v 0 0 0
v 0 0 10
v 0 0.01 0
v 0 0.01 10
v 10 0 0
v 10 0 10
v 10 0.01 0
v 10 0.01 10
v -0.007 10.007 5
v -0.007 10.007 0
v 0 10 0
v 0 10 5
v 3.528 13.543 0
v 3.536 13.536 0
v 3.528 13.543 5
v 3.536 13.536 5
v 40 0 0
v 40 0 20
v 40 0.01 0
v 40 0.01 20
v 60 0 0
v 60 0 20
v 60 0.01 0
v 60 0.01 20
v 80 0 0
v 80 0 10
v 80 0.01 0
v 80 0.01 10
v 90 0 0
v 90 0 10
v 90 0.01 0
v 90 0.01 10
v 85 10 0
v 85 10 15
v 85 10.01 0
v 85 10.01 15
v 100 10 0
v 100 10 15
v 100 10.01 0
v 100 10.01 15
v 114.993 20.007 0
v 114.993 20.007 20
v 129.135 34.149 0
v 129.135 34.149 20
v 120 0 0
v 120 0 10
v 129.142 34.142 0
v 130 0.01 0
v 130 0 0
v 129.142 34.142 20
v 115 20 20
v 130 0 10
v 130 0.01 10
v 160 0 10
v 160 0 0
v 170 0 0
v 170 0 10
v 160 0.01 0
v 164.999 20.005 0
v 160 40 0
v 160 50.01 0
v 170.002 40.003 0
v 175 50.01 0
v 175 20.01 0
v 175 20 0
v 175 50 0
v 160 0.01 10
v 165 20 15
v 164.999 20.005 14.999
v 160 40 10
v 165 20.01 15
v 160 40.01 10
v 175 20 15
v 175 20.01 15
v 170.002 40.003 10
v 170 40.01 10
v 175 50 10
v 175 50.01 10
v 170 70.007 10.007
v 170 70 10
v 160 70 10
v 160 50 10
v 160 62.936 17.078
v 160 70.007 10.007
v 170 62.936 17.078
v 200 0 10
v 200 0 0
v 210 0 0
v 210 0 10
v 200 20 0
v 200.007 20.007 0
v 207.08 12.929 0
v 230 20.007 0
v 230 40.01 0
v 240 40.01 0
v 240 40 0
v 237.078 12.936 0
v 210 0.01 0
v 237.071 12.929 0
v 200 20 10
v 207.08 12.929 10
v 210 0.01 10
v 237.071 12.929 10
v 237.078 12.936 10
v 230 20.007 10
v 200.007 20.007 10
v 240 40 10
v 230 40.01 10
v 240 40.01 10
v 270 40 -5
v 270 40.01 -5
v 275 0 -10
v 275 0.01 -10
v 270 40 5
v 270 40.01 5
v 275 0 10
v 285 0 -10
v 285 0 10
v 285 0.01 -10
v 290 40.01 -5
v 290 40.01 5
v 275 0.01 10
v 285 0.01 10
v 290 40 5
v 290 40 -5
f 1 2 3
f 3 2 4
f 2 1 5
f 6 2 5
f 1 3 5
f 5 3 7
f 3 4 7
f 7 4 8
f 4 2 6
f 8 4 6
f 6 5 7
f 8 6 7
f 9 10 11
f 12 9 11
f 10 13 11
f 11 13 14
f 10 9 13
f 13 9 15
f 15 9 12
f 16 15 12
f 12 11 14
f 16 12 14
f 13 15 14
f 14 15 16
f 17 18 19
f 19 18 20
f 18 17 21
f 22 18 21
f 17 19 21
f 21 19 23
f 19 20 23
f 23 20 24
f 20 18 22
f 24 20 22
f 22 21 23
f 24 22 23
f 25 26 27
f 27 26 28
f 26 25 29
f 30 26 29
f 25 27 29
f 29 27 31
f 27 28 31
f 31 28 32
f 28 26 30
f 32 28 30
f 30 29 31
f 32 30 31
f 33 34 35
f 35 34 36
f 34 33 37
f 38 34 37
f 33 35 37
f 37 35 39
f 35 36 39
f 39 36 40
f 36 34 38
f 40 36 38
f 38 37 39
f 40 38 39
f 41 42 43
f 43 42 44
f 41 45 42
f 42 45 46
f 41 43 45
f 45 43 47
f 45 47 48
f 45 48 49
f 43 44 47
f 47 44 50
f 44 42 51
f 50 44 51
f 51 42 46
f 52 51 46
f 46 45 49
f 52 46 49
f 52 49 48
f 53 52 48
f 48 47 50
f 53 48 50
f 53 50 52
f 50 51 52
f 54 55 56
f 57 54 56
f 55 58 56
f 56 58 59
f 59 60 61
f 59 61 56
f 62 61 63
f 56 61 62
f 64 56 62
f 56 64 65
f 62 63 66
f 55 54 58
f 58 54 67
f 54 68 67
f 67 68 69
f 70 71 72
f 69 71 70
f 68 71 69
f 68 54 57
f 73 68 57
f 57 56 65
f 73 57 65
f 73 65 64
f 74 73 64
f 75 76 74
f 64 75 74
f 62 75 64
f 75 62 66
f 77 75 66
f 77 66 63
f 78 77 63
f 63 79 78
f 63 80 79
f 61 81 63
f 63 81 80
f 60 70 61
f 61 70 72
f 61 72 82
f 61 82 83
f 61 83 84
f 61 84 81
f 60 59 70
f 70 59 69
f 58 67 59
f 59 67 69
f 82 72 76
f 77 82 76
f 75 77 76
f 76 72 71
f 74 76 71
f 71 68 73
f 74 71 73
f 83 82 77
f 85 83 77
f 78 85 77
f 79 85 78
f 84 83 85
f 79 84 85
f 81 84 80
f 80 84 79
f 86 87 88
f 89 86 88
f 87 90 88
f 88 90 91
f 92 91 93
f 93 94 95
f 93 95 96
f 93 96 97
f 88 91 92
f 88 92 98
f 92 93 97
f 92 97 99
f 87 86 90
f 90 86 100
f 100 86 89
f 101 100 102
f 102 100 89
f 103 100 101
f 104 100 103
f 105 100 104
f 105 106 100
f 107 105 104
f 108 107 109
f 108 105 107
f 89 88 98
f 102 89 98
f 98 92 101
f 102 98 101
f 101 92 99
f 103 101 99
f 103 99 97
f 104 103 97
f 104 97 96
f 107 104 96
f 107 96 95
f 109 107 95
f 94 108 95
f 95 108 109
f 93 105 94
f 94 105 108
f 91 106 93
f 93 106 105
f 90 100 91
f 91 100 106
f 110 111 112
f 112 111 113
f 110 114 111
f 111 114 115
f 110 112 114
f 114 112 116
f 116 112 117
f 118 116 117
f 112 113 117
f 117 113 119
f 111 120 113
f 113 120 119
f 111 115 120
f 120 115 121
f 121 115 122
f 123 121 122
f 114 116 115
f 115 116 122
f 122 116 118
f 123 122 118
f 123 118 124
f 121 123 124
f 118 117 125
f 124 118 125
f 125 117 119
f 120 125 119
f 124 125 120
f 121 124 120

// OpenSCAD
// file: beams.scad
/* 
 * openscad beams library
 * create complex openscads objects from frames which are defining beams
 * (constructed like a ship body or airplane hull)
 *
 * https://github.com/Stemer114/openscad_beams
 * http://www.thingiverse.com/Stemer114/designs
 * 
 *    Copyright (C) 2016 Stemer114 (stemer114@merunka.de)
 *
 *    This program is free software: you can redistribute it and/or modify
 *    it under the terms of the GNU General Public License as published by
 *    the Free Software Foundation, either version 3 of the License, or
 *    (at your option) any later version.
 *
 *    This program is distributed in the hope that it will be useful,
 *    but WITHOUT ANY WARRANTY; without even the implied warranty of
 *    MERCHANTABILITY or FITNESS FOR A PARTICULAR PURPOSE.  See the
 *    GNU General Public License for more details.
 *
 *    You should have received a copy of the GNU General Public License
 *    along with this program.  If not, see <http://www.gnu.org/licenses/>.
 *

 * Credits: 
 *          for some of the examples
 *          MCAD Library - Polyholes Copyright 2011 Nophead (of RepRap fame)
 *          It is licensed under the terms of Creative Commons Attribution 3.0 Unported.
 *          https://github.com/SolidCode/MCAD/blob/master/polyholes.scad
 *
 *          BeamsVersion, libEcho and code structure inspired by 
 *          OpenSCAD Parts Library by randyy is licensed under the GNU - LGPL license. 
 *          http://www.thingiverse.com/thing:6021
 *
 */

//**** house keeping
//we define these as functions to avoid assignment problems from caller modules
function BeamsVersion() = 1.0;  //library version
function ep()=0.01;  //epsilon environment to avoid non-manifold objects


//**** module definitions

// a single rectangular frame, usually very thin
// params: w - width of frame (x direction)
//         h - height of frame (z direction)
//         d - thickness of frame (y direction, usually very thin, e.g. 0.1mm)
//         o - offset vector from origin (probably best to use x and y offsets only here for starters)
//         r - rotation vector (probably best to use only z rotation here for starters)
//         vec - vector interface, used instead of the named params
//         the vector must use the following structure (example)
//           w  h  rotation    offset        thickness
//          [3, 4, [0, 0, 90], [0, -1.5, 0], ep ],   //start (front center)
//         there is no checking other than length checking to branch in the interface
//         so better make sure the vector conforms
//         the vector interface allows you to define a list of vectors in your source file
//         and supply them all at once to the beam module (see below)
//         this probably makes more sense if you look at some of the example files
module frame(
        w = 10,  //width
        h = 10,  //height
        r = [0, 0, 0],  //rotation vector
        o = [0, 0, 0],   //offset vector
        d = ep(),  //thickness (normally very thin)
        vec = [],  //vector, default none
        )
{
    if ( len(vec)==5 ) {
        //use vector interface
        translate( vec[3] )
            rotate( vec[2] )
            cube([ vec[0], vec[4], vec[1] ]);
    } else {
        //use single param interface
        translate(o)
            rotate(r)
            cube([w, d, h]);
    }  //end else
}  //end module

// a single beam consisting of two frames at either end, connected by a hull
// to disable hull, use no_hull=true (for debugging)
// beam uses the vector interface (see above in module frame)
module beam(
        frame1 = [10, 10, [0, 0, 0], [0, 0, 0], ep() ],
        frame2 = [10, 10, [0, 0, 0], [0, 20, 0], ep() ],
        no_hull = false,   
        )
{
    if ( no_hull ) {
        frame(vec=frame1);
        frame(vec=frame2);
    } else {
        hull() {
            frame(vec=frame1);
            frame(vec=frame2);
        }  //end hull
    }  //end else
}  //end module

// a beam consisting of 2 or more frames connected by hulls
// uses the vector interface (see above)
// see example scad files in library source to get an idea how to use this
module beam_multi(frames=[], no_hull=false )
{
    if ( len(frames)<2 ) {
        echo("WARNING: beam_multi: number of frames too small (must be at least 2): ", len(frames) );
    } else {
        for ( frame = [0:len(frames)-2] ) {
            beam( frames[frame], frames[frame+1], no_hull=no_hull );
        } //end for

    }
}

/*************************************************
 * interface 
*/

libEcho=true;
if (libEcho!=false){ 
	echo("****************************************************************  ");
    echo(" beams scad library loaded.");
    echo(" Version: ", BeamsVersion() );
    echo(" usage: - include beams.scad in your project dir,");
    echo("        - then add include <beams.scad> to your script ");
	echo("        - to turn off this header, place libEcho=false; in your script");
    echo("        - see examples scad files to some inspiration")
	echo("****************************************************************  ");
}
// main file
/*
 * a collection of complex examples for beams library
 * example for using openscad beams library
 *
 */

ep = 0.01;  //epsilon environment
x_offset = 40;  //test offset for aligning test objects along x-axis


include <beams.scad>

//Test 1
//two single assignment beams
translate([x_offset*0, 0, 0])
{
    frame();
    frame(5, 5, [0, 0, 45], [0, 10, 0]);
}

//Test 2
//assign beam params using vector (single vector)
beam_1 = [ 20, 20, [0, 0, 0], [0, 0, 0], ep ];
translate([x_offset*1, 0, 0]) frame(vec=beam_1);

//Test 3
//assign beam params using vector (multi-dimensional vector)
beam_2 = [ 
    //w   h   rotation   offset    thickness
    [10, 10, [0, 0, 0], [0, 0, 0], ep ],  //first frame
    [15, 15, [0, 0, 0], [5, 10, 0], ep ] //second frame
    ];
translate([x_offset*2, 0, 0])
{
    frame(vec=beam_2[0] );
    frame(vec=beam_2[1] );
} 

//Test 4
//beam with two frames
beam_3 = [ 
    //w   h   rotation   offset    thickness
    [10, 10, [0, 0, 0], [0, 0, 0], ep ],  //first frame
    [20, 20, [0, 0, 45], [-5, 20, 0], ep ] //second frame
    ];
translate([x_offset*3, 0, 0])
{
    beam( beam_3[0], beam_3[1] );
} 


//Test 5
//complex beam with multiple frames
beam_4 = [ 
    //w   h   rotation   offset    thickness
    [10, 10, [0, 0, 0], [0, 0, 0], ep ],  
    [10, 15, [0, 0, 0], [5, 20, 0], ep ],  
    [10, 10, [0, 0, 0], [0, 40, 0], ep ],  
    [15, 10, [0, 0, 0], [0, 50, 0], ep ],  
    [10, 10, [45, 0, 0], [0, 70, 10], ep ],  
    ];
translate([x_offset*4, 0, 0])
{
    beam_multi(frames=beam_4 );
} 

//Test 6
//complex shape with multiple frames
beam_5 = [ 
    //w   h   rotation   offset    thickness
    [10, 10, [0, 0, 0], [0, 0, 0], ep ],  
    [10, 10, [0, 0, -45], [0, 20, 0], ep ],  
    [10, 10, [0, 0, -45], [30, 20, 0], ep ],  
    [10, 10, [0, 0, 0], [30, 40, 0], ep ],  
    ];
translate([x_offset*5, 0, 0])
{
    beam_multi(frames=beam_5 );
} 


//Test 7
//multi beam with only two frames
beam_6 = [ 
    //w   h   rotation   offset    thickness
    [10, 20, [0, 0, 0], [-10/2, 0, -20/2], ep ],  //first frame
    [20, 10, [0, 0, 0], [-20/2, 40, -10/2], ep ] //second frame
    ];
translate([x_offset*7, 0, 0])
{
    beam_multi(frames=beam_6 );
} 
